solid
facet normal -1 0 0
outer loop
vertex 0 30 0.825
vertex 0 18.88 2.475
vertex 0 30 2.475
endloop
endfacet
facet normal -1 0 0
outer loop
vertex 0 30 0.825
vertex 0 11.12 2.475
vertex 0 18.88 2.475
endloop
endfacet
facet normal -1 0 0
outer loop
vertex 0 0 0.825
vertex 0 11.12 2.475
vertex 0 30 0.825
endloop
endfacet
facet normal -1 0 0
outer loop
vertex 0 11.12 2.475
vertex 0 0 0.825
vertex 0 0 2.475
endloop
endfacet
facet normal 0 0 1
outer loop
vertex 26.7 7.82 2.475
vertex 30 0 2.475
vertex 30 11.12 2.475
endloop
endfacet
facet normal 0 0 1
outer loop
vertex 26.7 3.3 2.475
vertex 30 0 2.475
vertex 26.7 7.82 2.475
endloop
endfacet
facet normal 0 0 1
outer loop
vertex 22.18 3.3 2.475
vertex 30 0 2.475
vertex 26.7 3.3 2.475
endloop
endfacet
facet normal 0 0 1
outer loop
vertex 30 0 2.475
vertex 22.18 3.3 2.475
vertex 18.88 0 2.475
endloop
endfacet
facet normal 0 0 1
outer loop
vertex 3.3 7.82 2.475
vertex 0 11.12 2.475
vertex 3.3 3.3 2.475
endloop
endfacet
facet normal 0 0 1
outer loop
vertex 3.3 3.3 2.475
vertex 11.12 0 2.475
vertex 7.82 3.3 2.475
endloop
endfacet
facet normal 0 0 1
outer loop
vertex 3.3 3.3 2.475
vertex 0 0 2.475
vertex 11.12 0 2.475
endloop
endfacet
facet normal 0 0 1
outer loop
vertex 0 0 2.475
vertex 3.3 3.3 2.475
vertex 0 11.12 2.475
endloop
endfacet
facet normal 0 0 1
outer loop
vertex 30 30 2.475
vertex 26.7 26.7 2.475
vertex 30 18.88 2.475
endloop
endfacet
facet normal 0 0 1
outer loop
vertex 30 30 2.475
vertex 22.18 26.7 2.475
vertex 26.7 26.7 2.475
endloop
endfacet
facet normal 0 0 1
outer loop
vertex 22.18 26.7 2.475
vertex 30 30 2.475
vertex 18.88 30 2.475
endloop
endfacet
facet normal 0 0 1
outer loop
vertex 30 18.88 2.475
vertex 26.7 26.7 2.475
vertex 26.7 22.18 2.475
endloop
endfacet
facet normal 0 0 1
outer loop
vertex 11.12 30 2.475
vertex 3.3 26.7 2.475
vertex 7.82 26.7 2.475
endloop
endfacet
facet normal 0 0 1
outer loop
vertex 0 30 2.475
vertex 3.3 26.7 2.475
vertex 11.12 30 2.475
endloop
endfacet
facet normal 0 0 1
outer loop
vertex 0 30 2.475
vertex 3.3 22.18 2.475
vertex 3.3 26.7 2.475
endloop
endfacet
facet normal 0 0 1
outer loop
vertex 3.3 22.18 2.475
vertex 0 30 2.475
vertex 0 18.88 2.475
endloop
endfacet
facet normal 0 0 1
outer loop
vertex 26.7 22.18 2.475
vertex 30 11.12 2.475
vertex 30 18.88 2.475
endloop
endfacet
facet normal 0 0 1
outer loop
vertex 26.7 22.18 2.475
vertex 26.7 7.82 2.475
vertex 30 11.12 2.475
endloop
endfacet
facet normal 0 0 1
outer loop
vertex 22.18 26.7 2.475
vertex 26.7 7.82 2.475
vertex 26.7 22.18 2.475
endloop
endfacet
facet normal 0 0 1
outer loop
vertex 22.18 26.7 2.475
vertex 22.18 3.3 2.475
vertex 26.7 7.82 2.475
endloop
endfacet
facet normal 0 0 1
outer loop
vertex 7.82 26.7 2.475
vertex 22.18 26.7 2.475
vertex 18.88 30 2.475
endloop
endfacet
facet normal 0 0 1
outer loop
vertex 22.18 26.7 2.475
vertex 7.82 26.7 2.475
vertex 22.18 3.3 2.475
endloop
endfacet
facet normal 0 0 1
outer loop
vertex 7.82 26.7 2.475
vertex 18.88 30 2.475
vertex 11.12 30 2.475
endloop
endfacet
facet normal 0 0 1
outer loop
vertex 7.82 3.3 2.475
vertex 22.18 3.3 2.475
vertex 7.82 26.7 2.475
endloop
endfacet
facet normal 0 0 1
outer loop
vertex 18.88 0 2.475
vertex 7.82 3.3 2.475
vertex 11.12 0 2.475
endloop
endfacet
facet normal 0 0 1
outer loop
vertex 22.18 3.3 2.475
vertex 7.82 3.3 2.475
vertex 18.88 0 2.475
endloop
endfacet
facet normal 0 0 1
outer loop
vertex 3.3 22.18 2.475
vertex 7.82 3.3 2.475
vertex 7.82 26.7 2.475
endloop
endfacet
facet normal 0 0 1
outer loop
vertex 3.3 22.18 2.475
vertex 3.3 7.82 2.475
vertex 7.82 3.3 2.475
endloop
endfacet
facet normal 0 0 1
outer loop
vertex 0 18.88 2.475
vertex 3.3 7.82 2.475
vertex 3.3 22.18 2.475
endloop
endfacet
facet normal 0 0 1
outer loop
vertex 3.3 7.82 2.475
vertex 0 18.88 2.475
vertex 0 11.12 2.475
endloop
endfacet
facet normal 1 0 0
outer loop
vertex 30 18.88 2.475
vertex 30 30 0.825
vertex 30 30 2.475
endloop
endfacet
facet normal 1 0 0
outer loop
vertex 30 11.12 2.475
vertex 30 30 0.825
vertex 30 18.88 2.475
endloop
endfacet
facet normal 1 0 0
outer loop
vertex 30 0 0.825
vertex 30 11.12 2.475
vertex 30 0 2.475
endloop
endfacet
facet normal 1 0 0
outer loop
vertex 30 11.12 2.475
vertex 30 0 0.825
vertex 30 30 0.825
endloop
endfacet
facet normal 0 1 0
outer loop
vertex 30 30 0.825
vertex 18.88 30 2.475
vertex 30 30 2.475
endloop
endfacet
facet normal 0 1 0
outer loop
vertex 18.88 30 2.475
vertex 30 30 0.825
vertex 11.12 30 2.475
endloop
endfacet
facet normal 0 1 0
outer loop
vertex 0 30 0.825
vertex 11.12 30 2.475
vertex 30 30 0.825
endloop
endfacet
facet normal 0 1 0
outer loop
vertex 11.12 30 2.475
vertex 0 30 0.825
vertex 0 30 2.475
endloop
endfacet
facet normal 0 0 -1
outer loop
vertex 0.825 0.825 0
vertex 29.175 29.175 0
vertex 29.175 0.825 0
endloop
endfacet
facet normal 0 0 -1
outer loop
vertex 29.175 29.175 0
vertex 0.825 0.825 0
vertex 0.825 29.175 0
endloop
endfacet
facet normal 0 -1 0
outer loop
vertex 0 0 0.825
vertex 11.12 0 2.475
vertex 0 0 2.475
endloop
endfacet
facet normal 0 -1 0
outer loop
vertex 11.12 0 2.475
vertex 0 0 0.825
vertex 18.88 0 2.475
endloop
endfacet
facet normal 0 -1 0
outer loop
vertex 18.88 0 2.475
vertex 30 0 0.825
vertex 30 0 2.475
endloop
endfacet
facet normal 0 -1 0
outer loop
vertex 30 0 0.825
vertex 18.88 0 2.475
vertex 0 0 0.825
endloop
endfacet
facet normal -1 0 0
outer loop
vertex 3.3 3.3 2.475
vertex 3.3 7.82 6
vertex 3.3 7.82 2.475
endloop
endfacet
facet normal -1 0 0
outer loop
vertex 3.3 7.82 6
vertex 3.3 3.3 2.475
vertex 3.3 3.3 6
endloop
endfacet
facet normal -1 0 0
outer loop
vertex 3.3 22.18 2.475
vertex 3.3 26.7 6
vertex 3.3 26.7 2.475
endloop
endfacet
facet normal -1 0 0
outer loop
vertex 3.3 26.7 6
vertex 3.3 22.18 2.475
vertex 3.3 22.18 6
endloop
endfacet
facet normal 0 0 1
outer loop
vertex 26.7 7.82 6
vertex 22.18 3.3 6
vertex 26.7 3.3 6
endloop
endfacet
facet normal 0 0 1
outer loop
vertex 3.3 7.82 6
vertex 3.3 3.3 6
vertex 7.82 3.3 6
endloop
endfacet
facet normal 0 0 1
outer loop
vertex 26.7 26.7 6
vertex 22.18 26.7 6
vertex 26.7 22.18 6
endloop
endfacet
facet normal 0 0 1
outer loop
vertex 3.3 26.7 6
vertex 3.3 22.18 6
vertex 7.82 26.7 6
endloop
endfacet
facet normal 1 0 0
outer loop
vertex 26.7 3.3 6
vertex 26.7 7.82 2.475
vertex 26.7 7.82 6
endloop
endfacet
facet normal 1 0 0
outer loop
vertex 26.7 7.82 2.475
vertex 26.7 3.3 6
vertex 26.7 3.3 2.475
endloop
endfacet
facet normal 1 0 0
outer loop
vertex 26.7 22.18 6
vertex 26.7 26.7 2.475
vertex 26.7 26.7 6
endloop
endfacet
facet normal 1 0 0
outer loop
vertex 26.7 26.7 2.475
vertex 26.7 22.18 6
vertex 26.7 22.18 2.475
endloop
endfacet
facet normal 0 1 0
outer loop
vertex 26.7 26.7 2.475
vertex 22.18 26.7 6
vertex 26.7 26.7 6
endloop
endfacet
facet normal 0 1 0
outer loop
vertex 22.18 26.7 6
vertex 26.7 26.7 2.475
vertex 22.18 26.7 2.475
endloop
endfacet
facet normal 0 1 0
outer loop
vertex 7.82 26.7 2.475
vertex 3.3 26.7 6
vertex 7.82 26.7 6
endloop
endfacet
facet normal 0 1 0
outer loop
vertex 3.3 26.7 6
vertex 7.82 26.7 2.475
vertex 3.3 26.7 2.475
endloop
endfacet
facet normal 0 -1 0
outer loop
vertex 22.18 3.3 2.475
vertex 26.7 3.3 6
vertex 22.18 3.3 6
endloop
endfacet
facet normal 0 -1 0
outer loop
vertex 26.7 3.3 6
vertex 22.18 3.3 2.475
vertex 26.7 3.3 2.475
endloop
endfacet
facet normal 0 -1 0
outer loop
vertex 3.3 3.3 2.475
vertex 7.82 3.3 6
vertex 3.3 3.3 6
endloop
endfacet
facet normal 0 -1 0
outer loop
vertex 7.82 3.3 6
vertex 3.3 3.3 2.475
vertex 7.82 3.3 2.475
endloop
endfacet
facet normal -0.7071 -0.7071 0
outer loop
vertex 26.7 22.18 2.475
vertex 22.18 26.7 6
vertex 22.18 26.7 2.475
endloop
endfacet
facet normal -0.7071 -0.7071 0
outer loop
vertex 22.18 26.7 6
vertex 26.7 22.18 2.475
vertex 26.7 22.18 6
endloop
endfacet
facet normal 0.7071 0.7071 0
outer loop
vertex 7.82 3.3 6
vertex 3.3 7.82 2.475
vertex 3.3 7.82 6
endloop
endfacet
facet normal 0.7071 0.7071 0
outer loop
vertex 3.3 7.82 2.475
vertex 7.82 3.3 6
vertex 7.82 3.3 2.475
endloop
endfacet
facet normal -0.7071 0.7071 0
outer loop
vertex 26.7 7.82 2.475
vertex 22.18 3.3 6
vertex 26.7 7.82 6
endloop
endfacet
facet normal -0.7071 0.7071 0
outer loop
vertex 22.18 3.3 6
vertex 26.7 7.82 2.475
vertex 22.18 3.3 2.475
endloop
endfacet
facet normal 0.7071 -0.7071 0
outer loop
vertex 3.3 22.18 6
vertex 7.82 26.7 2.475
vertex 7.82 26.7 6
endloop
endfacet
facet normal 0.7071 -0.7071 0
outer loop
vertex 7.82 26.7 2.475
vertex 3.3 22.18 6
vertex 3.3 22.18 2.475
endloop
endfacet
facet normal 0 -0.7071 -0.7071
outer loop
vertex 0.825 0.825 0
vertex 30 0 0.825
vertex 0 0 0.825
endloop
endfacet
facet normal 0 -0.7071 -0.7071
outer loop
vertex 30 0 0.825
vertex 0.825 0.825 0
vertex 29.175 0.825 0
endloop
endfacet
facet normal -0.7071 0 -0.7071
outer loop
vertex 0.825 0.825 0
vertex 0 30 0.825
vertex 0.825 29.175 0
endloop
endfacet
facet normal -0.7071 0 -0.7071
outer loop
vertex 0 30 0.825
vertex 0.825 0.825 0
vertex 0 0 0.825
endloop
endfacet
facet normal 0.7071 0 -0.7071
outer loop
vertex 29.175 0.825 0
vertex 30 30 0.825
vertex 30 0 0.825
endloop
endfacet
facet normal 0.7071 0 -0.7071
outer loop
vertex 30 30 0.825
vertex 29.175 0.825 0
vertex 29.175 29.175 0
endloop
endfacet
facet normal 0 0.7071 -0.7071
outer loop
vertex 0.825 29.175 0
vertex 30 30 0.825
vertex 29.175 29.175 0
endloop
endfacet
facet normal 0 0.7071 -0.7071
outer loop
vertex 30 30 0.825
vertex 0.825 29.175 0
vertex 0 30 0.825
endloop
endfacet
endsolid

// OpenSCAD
// file: settings.scad
cube_width=30;
cube_height=16;
cube_thickness=3.3;

cap_width=30;
cap_height=6;
cap_thickness=3.3;

glyph_depth=0.7;
glyph_thickness=1.5;

photo_resitor_hole_r = 2.4;
spring_contact_hole_r = 3.1;
// main file
include <settings.scad>

module cap_2x1(width, height, thickness)
{
    width1=width-thickness;
    difference()
    {
        union()
        {
            cube([width, width, thickness*3/4]);
            translate([thickness,thickness,0])cube([width-2*thickness, width-2*thickness, height]);
        }
        union()
        {
            translate([width/2,width/2,0])rotate([0,0,45])translate([-width1/2,-width1/2,thickness*3/4]) cube([width1,width1,height]);
                        //corners
            translate([0,0.25*thickness,0])rotate([45,0,0]) translate([-0.5*width, -width, -0.5*height]) cube([2*width, width, 2*height]);
            translate([0.25*thickness,0,0]) rotate([0,-45,0]) translate([-width, -0.5*width, -0.5*height]) cube([width, 2*width, 2*height]);
            translate([width-0.25*thickness,0,0]) rotate([0,45,0]) translate([0, 0, -0.5*height]) cube([width, 2*width, 2*height]);
            translate([0,width-0.25*thickness,0]) rotate([-45,0,0]) translate([-0.5*width, 0, -0.5*height]) cube([2*width, width, 2*height]);
        }
    }
}

cap_2x1(cap_width, cap_height, cap_thickness);
//ring(10,1,1);
//arrow(1, 20, 3, 1);
//transistor_npn(30, 1, 1);
